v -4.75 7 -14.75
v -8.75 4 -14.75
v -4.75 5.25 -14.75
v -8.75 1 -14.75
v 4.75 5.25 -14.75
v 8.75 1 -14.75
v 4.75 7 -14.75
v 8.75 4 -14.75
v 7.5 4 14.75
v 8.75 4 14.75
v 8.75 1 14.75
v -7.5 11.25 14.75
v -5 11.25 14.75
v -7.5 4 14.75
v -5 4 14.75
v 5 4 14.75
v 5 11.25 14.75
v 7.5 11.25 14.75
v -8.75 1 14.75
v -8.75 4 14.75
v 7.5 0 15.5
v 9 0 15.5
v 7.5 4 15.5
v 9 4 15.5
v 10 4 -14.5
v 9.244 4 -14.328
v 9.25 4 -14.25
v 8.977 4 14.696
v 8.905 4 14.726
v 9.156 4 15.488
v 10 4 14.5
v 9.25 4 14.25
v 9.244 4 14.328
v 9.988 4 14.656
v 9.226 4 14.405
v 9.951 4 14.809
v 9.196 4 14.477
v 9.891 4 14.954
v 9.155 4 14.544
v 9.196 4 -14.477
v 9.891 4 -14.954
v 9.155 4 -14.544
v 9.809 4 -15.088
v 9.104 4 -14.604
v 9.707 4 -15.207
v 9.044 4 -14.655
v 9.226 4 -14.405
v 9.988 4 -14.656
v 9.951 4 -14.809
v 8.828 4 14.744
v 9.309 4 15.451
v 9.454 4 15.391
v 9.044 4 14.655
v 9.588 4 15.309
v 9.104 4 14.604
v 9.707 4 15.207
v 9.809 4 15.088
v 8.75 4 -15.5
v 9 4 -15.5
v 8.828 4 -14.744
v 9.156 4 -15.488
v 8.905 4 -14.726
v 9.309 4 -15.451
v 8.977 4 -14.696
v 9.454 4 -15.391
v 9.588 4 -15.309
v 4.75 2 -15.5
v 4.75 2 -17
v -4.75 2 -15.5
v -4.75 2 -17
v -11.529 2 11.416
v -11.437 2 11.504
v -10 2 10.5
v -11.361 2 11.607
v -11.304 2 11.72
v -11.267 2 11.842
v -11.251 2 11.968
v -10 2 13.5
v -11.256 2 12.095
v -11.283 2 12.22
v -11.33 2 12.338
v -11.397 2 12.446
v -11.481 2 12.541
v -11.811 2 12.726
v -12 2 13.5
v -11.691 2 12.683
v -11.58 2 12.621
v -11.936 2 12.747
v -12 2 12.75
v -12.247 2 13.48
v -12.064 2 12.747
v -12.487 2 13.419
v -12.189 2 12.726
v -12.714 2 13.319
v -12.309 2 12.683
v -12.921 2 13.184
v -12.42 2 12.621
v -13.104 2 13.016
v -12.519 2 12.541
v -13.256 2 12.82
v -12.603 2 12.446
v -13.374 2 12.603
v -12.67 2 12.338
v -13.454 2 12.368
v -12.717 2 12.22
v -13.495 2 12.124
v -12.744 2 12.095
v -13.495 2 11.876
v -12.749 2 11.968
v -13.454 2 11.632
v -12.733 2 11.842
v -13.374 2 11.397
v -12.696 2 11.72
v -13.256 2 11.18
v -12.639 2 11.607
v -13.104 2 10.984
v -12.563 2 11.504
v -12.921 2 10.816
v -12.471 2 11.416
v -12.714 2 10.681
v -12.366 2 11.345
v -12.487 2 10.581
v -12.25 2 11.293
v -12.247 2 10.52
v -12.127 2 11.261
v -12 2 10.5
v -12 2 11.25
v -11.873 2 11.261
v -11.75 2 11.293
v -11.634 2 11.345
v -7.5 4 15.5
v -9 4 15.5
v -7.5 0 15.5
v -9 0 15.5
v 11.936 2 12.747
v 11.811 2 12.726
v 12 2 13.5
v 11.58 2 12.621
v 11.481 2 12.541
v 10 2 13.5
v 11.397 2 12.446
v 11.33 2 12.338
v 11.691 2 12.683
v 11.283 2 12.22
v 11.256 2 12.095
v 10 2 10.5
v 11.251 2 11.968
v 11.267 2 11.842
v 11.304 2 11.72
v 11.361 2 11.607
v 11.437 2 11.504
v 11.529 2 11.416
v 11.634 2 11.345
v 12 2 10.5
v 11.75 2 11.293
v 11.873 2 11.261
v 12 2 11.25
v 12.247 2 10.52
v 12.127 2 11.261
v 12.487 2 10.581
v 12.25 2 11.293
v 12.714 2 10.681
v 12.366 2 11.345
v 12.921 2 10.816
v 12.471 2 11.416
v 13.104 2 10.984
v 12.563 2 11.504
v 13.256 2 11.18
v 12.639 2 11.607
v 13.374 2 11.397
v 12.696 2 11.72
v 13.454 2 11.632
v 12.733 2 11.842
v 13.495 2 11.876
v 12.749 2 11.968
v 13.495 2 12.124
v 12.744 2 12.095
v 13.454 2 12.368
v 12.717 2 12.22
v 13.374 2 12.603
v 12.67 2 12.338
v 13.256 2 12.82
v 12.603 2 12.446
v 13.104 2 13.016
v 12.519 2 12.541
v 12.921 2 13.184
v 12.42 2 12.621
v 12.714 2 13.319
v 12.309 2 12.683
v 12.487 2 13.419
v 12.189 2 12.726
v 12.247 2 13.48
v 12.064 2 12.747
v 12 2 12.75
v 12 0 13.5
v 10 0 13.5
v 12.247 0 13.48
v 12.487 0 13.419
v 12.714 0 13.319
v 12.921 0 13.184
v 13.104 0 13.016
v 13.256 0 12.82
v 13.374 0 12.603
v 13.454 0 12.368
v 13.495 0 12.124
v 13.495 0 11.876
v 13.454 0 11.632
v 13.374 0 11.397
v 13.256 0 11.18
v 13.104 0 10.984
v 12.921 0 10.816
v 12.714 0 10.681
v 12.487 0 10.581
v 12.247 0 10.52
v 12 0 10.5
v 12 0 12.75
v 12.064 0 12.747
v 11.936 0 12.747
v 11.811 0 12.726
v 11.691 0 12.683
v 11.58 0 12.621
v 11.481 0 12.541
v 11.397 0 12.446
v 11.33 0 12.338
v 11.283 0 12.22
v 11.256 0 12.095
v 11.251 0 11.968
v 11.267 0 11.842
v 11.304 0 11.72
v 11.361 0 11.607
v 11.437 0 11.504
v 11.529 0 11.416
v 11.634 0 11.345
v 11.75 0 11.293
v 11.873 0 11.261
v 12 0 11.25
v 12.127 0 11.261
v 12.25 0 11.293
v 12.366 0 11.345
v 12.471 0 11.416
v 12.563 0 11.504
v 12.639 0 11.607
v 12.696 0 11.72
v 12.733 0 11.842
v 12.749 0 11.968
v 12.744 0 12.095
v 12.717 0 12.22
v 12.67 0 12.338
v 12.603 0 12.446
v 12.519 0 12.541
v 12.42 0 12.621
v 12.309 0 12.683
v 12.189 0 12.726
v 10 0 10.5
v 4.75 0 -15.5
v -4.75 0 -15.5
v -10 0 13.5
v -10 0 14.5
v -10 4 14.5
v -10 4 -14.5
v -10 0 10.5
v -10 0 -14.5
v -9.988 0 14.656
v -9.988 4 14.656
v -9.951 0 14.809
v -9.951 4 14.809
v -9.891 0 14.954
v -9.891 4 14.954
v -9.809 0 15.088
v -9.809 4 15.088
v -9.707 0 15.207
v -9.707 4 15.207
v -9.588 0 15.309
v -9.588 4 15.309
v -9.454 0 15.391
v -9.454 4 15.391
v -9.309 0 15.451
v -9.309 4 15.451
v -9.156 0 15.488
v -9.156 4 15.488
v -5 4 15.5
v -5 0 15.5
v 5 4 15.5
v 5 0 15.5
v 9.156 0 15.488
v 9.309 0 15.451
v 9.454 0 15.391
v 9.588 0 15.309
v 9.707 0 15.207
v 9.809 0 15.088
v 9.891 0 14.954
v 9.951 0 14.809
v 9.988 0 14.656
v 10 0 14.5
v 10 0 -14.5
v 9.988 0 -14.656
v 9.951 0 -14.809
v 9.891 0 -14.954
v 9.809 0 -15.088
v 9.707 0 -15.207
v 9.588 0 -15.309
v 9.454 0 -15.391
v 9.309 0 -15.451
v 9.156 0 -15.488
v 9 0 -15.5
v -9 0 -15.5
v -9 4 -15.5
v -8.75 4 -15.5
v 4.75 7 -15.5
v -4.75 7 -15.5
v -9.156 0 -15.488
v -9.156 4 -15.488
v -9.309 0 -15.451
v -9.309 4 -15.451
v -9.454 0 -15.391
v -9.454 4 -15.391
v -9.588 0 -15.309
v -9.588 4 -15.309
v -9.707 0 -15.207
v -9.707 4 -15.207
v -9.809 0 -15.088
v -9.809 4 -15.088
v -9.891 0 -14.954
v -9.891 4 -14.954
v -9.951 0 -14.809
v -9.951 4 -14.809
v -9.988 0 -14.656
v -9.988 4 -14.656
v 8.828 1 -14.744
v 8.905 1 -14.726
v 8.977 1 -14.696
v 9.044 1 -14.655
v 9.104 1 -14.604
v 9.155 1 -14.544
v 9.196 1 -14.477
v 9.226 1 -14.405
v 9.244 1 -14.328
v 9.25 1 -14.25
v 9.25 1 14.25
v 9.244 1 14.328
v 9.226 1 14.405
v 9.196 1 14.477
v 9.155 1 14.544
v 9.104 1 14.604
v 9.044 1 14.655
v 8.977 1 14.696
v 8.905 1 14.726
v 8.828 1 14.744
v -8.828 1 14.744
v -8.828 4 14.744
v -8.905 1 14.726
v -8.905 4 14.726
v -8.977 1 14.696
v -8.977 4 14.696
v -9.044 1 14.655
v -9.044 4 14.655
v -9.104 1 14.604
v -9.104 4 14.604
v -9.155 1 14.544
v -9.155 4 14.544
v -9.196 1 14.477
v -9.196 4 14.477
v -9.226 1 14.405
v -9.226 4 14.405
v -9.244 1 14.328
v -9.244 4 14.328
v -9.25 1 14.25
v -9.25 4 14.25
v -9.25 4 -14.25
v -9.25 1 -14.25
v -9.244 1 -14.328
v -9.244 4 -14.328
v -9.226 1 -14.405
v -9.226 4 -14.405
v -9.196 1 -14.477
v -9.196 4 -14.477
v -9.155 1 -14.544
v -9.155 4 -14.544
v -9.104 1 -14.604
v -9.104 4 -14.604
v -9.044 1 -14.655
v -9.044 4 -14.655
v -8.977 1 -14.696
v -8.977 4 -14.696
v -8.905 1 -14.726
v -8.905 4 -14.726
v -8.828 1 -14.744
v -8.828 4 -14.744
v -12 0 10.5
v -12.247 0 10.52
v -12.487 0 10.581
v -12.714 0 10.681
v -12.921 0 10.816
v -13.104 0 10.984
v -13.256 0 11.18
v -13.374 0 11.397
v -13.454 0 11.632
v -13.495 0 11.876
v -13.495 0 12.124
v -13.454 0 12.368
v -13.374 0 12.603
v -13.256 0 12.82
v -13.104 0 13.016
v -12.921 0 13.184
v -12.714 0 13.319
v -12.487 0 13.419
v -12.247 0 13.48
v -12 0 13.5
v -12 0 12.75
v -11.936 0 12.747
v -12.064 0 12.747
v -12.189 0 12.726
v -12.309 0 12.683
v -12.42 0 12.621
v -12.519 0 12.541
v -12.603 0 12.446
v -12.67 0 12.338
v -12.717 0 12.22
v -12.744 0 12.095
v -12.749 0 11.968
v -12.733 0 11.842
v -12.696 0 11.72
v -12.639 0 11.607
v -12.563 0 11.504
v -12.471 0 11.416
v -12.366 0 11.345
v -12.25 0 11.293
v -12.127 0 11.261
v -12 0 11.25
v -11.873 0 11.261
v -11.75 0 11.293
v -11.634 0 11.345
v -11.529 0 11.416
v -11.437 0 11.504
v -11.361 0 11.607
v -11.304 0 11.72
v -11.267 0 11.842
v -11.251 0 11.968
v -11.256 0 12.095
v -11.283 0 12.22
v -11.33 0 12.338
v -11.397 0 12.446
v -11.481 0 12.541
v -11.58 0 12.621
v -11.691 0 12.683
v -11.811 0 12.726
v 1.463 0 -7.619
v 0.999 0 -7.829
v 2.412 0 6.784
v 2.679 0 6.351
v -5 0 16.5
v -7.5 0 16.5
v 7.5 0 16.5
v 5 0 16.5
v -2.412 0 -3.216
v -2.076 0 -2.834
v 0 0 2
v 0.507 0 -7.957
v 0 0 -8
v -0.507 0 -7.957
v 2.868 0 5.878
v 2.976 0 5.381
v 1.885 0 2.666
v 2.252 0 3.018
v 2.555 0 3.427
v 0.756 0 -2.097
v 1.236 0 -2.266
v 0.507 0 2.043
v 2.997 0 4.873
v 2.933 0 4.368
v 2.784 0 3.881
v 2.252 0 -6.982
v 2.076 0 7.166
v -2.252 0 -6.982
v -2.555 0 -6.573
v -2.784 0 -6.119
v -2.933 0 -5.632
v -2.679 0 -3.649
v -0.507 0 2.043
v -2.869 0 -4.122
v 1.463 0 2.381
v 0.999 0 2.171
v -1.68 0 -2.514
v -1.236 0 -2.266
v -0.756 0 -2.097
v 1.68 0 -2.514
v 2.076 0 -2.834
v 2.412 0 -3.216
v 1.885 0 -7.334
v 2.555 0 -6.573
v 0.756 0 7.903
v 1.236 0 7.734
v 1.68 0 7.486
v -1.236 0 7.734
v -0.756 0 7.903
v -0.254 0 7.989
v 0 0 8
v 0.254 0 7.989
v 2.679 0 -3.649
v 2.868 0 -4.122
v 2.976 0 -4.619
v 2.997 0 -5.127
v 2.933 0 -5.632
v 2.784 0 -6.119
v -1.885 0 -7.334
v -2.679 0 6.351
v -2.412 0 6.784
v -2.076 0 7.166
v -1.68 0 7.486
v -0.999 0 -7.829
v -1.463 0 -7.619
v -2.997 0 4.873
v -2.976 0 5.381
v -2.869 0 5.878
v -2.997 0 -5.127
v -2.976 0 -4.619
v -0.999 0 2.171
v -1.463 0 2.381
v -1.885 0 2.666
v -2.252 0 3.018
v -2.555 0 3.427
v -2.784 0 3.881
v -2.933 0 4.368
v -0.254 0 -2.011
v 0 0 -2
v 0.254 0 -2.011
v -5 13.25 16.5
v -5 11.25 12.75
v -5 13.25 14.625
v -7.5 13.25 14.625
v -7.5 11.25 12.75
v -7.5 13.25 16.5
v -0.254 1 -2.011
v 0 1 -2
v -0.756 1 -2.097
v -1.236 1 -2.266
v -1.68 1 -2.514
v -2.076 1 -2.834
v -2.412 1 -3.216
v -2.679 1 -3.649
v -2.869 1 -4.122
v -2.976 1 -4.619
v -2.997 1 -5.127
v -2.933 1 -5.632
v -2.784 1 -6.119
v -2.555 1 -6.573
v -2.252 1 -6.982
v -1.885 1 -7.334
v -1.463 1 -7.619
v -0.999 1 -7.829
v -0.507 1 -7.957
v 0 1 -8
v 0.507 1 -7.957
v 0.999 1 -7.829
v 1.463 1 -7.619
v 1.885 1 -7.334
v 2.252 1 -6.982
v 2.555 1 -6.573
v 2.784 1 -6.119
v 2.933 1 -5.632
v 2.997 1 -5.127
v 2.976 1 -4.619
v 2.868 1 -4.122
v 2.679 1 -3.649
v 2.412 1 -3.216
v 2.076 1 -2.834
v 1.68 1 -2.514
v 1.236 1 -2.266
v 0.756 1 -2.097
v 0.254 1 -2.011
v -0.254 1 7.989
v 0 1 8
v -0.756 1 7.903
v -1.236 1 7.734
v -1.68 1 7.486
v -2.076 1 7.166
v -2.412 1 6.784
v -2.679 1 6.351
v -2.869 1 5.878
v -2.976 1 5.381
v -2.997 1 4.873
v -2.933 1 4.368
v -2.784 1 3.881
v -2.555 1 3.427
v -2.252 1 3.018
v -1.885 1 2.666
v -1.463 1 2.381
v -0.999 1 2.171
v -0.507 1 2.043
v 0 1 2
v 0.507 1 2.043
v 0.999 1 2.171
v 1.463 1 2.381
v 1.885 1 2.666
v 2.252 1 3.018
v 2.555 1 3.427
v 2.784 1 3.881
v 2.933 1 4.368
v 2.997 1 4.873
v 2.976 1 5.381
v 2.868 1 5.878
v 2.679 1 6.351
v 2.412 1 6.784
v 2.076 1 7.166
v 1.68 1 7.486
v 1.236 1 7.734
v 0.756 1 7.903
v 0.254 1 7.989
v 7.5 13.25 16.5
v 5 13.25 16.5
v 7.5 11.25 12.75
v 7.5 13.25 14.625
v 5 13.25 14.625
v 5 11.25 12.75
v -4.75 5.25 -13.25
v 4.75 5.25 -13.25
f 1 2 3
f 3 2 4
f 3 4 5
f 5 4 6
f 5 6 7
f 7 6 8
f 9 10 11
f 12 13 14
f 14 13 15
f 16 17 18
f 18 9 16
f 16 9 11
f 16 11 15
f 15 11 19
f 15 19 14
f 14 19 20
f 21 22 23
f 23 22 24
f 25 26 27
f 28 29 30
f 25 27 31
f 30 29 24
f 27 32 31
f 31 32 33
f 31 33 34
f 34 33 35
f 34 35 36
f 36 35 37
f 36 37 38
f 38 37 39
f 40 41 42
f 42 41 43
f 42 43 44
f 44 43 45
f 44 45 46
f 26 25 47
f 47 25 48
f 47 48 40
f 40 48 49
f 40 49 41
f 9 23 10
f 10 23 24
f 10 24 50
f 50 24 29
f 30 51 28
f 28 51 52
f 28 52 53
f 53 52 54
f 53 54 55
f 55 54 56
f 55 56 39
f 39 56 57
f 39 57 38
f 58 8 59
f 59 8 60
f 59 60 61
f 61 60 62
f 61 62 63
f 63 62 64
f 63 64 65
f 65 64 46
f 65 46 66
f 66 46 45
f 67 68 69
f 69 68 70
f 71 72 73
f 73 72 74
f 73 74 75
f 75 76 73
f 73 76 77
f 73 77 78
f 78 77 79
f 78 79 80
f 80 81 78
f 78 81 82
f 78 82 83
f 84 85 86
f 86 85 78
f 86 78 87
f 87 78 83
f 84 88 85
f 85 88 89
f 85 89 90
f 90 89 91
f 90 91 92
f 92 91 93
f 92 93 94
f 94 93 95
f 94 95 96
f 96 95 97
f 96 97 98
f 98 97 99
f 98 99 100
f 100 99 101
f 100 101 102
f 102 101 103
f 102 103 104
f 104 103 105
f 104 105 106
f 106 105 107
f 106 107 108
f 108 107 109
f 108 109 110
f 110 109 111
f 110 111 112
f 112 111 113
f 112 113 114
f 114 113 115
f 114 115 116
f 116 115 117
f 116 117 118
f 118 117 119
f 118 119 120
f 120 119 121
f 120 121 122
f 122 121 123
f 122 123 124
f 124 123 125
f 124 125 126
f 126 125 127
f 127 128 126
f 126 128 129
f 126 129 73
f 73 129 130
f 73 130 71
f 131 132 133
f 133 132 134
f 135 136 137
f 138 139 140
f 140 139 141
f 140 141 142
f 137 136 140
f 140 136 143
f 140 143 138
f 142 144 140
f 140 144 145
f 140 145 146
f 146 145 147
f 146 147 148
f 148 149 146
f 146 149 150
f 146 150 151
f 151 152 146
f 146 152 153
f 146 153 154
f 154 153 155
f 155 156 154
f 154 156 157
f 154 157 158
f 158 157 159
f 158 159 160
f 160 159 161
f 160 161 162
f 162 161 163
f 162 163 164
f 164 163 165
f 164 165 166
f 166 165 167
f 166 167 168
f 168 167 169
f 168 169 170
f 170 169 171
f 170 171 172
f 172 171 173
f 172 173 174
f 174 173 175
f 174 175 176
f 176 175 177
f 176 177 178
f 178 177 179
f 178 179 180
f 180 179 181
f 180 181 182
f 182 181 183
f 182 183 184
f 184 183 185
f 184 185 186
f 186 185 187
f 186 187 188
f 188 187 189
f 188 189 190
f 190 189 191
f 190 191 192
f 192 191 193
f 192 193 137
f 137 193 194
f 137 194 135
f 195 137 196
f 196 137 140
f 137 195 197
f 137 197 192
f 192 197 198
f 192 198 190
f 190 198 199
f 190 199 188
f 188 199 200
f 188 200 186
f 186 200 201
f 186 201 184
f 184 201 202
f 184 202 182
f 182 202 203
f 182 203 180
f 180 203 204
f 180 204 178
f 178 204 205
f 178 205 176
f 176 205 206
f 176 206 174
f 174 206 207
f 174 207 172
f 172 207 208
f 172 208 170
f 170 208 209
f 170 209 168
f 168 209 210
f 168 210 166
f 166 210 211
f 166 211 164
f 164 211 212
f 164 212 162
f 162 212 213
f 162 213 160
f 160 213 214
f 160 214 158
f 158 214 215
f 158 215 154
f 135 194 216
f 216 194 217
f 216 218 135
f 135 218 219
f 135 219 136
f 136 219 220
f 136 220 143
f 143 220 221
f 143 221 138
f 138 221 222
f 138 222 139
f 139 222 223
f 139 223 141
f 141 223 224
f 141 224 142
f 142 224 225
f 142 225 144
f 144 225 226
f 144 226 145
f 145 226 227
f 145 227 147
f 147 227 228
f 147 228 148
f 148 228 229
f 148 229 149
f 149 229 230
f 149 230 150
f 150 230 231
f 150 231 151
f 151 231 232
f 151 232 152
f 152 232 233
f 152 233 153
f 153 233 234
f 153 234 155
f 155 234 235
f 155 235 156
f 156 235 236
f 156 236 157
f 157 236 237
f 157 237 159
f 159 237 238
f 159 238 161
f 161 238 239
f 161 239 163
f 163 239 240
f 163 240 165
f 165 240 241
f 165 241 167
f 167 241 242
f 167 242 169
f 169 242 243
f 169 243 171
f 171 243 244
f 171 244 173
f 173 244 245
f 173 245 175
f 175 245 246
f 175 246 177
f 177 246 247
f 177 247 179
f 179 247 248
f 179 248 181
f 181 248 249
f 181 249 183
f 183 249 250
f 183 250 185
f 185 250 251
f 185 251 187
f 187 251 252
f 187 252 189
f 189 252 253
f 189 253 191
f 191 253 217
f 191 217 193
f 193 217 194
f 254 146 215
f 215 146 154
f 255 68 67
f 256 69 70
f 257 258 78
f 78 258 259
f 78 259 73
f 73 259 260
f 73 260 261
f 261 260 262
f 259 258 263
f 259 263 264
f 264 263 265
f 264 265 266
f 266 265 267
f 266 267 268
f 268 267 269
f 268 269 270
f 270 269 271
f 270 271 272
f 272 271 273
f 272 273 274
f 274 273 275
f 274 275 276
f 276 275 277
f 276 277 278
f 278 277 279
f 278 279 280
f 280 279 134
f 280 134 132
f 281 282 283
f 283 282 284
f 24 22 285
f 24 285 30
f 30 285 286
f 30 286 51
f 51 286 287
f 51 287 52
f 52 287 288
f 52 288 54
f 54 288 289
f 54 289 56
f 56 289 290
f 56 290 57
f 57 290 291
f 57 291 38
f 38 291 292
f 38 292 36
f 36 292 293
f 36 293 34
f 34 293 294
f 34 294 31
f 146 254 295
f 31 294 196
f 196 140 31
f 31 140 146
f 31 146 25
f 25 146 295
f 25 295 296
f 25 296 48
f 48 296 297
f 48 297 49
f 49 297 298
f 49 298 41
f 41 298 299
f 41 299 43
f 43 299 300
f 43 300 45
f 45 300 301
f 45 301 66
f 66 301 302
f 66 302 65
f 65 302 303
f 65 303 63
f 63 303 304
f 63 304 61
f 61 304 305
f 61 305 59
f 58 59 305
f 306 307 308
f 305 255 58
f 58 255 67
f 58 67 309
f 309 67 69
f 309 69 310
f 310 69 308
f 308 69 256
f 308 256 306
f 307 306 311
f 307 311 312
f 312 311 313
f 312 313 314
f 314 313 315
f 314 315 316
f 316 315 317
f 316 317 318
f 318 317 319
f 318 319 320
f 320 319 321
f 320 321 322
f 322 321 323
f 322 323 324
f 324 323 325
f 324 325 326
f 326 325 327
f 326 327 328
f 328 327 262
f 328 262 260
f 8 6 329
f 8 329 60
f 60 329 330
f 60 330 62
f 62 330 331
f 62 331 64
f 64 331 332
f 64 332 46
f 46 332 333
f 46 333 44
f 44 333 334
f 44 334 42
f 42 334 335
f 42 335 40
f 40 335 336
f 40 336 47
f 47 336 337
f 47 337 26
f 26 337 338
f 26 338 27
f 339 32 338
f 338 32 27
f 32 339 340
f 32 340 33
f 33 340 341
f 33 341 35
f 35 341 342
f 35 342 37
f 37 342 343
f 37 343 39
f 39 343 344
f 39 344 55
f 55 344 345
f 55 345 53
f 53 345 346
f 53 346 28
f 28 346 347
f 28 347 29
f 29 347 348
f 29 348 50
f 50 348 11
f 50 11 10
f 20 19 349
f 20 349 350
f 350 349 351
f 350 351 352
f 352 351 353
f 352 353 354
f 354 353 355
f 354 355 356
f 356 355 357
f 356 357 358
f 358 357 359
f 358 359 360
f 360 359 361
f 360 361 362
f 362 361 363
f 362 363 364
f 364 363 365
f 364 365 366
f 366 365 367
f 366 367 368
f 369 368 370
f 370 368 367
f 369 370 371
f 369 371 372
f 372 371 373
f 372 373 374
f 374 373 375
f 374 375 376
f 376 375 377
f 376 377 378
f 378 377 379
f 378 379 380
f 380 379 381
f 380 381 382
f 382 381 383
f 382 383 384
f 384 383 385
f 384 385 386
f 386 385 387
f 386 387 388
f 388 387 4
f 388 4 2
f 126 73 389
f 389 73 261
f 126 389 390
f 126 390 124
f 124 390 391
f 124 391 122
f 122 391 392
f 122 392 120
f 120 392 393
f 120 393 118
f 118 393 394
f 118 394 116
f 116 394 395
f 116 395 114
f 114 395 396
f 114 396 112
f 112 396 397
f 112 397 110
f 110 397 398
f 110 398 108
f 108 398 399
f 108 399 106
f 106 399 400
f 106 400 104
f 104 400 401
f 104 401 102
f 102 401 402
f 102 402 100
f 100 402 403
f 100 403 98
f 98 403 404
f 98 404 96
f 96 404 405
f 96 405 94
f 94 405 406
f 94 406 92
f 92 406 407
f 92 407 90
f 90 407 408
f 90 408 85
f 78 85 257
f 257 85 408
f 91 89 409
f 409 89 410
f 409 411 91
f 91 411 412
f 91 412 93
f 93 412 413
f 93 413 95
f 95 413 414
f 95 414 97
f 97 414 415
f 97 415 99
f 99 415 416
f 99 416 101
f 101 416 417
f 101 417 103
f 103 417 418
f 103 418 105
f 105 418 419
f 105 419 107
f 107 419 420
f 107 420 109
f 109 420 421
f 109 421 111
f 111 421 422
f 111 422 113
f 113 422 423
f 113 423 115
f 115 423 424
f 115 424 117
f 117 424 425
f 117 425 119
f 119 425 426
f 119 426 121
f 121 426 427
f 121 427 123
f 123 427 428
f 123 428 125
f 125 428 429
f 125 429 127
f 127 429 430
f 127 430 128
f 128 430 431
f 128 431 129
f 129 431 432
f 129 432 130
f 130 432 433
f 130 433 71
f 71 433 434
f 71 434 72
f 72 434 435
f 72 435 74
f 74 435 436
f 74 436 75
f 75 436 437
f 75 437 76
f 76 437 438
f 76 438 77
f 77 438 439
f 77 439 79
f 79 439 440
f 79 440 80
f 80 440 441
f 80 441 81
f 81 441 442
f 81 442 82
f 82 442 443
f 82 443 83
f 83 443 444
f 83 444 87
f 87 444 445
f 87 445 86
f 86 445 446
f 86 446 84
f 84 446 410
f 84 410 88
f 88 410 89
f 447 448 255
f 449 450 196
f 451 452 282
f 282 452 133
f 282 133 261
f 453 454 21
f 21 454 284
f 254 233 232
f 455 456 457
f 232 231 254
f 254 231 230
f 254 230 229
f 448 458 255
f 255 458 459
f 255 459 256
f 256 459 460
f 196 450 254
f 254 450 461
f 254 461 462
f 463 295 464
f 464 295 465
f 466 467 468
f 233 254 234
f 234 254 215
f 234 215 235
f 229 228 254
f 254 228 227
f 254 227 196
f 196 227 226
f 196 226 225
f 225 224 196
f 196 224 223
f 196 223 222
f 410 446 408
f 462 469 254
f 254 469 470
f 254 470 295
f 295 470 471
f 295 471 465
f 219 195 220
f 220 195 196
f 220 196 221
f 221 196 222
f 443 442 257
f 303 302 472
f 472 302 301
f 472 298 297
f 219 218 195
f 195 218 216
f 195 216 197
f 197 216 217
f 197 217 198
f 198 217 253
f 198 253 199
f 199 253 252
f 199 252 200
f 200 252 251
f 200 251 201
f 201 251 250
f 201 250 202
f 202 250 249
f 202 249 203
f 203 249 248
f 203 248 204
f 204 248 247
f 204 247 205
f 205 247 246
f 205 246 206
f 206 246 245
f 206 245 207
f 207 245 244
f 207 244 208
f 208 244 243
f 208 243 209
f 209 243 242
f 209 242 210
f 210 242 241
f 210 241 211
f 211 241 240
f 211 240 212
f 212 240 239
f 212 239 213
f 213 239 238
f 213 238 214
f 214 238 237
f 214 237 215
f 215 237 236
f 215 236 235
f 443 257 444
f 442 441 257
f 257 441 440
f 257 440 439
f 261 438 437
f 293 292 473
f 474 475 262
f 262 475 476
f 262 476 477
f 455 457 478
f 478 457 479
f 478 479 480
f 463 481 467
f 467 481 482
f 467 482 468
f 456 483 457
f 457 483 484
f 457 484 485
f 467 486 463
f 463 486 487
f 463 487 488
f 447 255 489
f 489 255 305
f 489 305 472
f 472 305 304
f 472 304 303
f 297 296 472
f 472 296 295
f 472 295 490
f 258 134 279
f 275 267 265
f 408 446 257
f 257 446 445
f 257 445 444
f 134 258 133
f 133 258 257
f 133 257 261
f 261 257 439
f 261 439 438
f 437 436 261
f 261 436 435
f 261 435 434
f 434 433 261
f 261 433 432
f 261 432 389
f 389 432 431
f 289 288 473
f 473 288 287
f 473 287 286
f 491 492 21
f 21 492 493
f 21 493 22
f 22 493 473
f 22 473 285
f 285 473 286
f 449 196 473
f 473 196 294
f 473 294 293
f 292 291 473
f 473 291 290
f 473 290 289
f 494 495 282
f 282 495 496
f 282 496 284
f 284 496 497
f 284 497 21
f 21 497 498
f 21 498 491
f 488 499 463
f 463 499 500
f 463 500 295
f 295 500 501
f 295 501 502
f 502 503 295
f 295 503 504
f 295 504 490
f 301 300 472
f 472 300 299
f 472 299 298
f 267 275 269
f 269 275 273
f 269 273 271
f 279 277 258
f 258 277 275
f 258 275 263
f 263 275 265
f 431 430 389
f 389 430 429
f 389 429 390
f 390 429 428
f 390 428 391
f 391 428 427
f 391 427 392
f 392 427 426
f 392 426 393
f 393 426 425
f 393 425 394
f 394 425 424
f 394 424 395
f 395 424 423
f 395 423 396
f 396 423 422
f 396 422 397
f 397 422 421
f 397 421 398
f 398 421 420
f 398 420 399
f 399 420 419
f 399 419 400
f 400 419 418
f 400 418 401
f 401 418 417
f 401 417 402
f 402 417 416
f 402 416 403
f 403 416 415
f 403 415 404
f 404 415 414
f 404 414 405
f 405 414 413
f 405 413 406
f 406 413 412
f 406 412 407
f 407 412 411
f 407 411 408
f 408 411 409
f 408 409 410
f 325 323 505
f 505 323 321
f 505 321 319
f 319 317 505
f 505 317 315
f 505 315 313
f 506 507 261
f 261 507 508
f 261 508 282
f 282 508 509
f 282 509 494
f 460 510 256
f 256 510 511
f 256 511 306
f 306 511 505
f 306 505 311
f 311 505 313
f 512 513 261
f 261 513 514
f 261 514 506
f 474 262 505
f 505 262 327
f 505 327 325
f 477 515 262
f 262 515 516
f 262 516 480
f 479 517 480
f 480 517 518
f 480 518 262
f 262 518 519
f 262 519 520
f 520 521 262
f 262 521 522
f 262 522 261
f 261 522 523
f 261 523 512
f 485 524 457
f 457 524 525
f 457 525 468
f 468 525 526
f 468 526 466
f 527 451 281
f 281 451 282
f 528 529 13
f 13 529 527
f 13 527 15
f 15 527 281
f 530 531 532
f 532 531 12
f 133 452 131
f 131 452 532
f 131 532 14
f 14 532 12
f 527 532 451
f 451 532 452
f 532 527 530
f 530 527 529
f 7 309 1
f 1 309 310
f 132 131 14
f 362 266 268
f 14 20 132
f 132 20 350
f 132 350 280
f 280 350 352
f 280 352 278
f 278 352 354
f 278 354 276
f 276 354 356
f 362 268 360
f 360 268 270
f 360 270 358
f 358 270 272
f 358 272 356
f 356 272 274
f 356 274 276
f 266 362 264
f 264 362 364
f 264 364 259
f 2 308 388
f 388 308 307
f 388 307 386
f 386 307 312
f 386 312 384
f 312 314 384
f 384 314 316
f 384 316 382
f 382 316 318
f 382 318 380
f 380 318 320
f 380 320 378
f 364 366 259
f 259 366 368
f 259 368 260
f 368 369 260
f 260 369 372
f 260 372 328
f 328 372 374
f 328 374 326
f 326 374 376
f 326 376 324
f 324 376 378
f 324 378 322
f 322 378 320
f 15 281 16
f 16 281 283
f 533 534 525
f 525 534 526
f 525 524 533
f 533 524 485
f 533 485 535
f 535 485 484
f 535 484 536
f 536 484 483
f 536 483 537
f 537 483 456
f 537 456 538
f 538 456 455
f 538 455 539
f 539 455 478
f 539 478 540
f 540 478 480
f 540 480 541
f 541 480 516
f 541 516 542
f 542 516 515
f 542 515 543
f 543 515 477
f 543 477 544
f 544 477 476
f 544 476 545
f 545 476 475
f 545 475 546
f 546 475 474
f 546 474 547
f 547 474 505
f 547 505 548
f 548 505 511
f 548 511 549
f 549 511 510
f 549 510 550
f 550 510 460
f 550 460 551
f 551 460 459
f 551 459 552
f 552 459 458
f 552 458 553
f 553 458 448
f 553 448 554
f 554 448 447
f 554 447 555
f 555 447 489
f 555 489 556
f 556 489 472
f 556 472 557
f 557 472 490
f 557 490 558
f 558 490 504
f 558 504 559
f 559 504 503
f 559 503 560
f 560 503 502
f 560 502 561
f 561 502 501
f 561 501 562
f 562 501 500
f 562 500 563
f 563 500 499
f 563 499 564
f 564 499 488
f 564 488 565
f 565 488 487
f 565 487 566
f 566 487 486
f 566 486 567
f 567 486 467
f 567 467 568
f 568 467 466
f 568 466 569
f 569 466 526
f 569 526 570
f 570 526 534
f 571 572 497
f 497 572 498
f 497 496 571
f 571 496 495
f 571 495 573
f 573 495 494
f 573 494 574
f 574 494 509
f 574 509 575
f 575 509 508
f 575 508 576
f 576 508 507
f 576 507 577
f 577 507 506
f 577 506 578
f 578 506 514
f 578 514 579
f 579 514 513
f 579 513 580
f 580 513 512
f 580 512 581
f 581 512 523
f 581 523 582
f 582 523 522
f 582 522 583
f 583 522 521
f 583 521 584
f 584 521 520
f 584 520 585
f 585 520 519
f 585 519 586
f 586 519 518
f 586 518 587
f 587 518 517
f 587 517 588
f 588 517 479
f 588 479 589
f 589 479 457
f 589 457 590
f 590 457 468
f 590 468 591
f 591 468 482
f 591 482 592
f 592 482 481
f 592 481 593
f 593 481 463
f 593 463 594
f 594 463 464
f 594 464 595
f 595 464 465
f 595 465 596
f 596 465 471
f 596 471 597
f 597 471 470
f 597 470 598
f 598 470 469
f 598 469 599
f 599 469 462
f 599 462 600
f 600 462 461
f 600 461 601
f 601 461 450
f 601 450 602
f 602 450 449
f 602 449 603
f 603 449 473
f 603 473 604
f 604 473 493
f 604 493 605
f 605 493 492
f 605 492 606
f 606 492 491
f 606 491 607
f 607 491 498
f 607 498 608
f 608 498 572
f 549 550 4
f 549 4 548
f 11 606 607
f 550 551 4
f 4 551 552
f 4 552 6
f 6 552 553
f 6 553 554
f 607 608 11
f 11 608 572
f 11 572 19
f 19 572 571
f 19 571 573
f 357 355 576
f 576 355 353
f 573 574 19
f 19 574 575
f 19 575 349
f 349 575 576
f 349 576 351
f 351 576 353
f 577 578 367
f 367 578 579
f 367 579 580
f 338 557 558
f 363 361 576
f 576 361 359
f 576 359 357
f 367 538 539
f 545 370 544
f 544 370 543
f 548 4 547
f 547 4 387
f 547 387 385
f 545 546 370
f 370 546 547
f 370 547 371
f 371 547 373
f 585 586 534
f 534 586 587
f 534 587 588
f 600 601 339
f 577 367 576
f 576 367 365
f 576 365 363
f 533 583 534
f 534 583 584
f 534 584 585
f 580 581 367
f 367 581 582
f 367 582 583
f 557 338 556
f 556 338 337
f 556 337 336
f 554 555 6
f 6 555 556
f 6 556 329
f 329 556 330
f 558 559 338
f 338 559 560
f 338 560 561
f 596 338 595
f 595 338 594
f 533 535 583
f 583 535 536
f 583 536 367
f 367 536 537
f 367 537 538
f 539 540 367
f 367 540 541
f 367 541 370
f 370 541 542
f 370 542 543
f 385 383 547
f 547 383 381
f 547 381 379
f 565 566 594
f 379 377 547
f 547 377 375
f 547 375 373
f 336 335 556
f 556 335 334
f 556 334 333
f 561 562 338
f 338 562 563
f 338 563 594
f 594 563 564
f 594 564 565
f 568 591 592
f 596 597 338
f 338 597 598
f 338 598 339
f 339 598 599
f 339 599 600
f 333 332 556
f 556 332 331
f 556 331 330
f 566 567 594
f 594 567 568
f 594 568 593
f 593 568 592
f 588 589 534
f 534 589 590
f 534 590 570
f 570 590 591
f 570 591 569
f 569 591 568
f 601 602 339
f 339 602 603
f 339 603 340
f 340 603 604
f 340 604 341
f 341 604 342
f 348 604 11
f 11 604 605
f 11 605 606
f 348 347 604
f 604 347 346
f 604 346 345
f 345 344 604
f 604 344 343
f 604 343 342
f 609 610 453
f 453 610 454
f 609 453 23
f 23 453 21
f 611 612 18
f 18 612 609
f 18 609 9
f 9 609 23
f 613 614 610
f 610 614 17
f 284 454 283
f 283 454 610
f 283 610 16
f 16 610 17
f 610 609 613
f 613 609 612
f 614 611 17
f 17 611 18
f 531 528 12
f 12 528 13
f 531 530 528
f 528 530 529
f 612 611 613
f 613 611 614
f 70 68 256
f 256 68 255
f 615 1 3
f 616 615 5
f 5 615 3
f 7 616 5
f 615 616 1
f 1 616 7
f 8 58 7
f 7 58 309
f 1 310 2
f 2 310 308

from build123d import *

# Parameters (mm, degrees)
PCB_HOLDER_R             = 0.75
BOSS_EXTRUDE19_DEPTH     = 1
PCB_HOLDER_R_2           = 3
BOSS_EXTRUDE19_2_DEPTH   = 1
BOSS_EXTRUDE20_OUTLINE_R = 0.75
BOSS_EXTRUDE20_DEPTH     = 2
BOSS_EXTRUDE21_DEPTH     = 4
BOSS_EXTRUDE22_DEPTH     = 7
PCB_HOLDER_49_W          = 2.5
PCB_HOLDER_49_H          = 1
PCB_HOLDER_49_H_2        = 0.75
BOSS_EXTRUDE23_DEPTH     = 13.25
SKETCH10_W               = 2.5
SKETCH10_H               = 2
BOSS_EXTRUDE24_DEPTH     = 2
CUT_EXTRUDE9_DEPTH       = 20
CUT_EXTRUDE10_DEPTH      = 20
SKETCH9_W                = 9.5
SKETCH9_H                = 1.75
BOSS_EXTRUDE25_DEPTH     = 1.5
CUT_EXTRUDE11_DEPTH      = 10
CUT_EXTRUDE12_DEPTH      = 10
CUT_EXTRUDE13_DEPTH      = 10


# Read off the part's stored shape, not the designer's step: Boss-Extrude20
with BuildPart() as part:
    # PCB holder → Boss-Extrude19 (new body)
    with BuildSketch(Plane(origin=(0, 0, 0), x_dir=(1, 0, 0), z_dir=(0, 1, 0))):
        with BuildLine():
            Line((-10, -13.5), (-10, -10.5))
            Line((-10, -10.5), (-12, -10.5))
            ThreePointArc((-12, -10.5), (-13.5, -12), (-12, -13.5))
            Line((-12, -13.5), (-10, -13.5))
        make_face()
        with Locations(Location((-12, -12, 0), (0, 0, 270))):
            Circle(PCB_HOLDER_R, mode=Mode.SUBTRACT)
    extrude(amount=BOSS_EXTRUDE19_DEPTH)

    # Boss-Extrude20 outline → Boss-Extrude20 (add)
    with BuildSketch(Plane(origin=(0, 0, 0), x_dir=(1, 0, 0), z_dir=(0, 1, 0))):
        with BuildLine():
            Line((10, -14.5), (10, -13.5))
            Line((10, -13.5), (12, -13.5))
            ThreePointArc((12, -13.5), (13.5, -12), (12, -10.5))
            Line((12, -10.5), (10, -10.5))
            Line((10, -10.5), (10, 14.5))
            ThreePointArc((10, 14.5), (9.707106781, 15.207106781), (9, 15.5))
            Line((9, 15.5), (4.75, 15.5))
            Line((4.75, 15.5), (4.75, 17))
            Line((4.75, 17), (-4.75, 17))
            Line((-4.75, 17), (-4.75, 15.5))
            Line((-4.75, 15.5), (-9, 15.5))
            ThreePointArc((-9, 15.5), (-9.707106781, 15.207106781), (-10, 14.5))
            Line((-10, 14.5), (-10, -10.5))
            Line((-10, -10.5), (-12, -10.5))
            ThreePointArc((-12, -10.5), (-13.5, -12), (-12, -13.5))
            Line((-12, -13.5), (-10, -13.5))
            Line((-10, -13.5), (-10, -14.5))
            ThreePointArc((-10, -14.5), (-9.707106781, -15.207106781), (-9, -15.5))
            Line((-9, -15.5), (9, -15.5))
            ThreePointArc((9, -15.5), (9.707106781, -15.207106781), (10, -14.5))
        make_face()
        with Locations((12, -12)):
            Circle(BOSS_EXTRUDE20_OUTLINE_R, mode=Mode.SUBTRACT)
        with BuildLine():
            Line((-8.75, 14.75), (8.75, 14.75))
            ThreePointArc((8.75, 14.75), (9.103553391, 14.603553391), (9.25, 14.25))
            Line((9.25, 14.25), (9.25, -14.25))
            ThreePointArc((9.25, -14.25), (9.103553391, -14.603553391), (8.75, -14.75))
            Line((8.75, -14.75), (-8.75, -14.75))
            ThreePointArc((-8.75, -14.75), (-9.103553391, -14.603553391), (-9.25, -14.25))
            Line((-9.25, -14.25), (-9.25, 14.25))
            ThreePointArc((-9.25, 14.25), (-9.103553391, 14.603553391), (-8.75, 14.75))
        make_face(mode=Mode.SUBTRACT)
        with Locations((-12, -12)):
            Circle(BOSS_EXTRUDE20_OUTLINE_R, mode=Mode.SUBTRACT)
    extrude(amount=BOSS_EXTRUDE20_DEPTH)



with BuildPart() as body_2:
    # PCB holder → Boss-Extrude19 2 (new body)
    with BuildSketch(Plane(origin=(0, 0, 0), x_dir=(1, 0, 0), z_dir=(0, 1, 0))):
        with BuildLine():
            Line((8.75, 14.75), (-8.75, 14.75))
            ThreePointArc((-8.75, 14.75), (-9.103553391, 14.603553391), (-9.25, 14.25))
            Line((-9.25, 14.25), (-9.25, -14.25))
            ThreePointArc((-9.25, -14.25), (-9.103553391, -14.603553391), (-8.75, -14.75))
            Line((-8.75, -14.75), (7.5, -14.75))
            Line((7.5, -14.75), (7.5, -15.5))
            Line((7.5, -15.5), (9, -15.5))
            ThreePointArc((9, -15.5), (9.707106781, -15.207106781), (10, -14.5))
            Line((10, -14.5), (10, -13.5))
            Line((10, -13.5), (12, -13.5))
            ThreePointArc((12, -13.5), (13.5, -12), (12, -10.5))
            Line((12, -10.5), (10, -10.5))
            Line((10, -10.5), (10, 14.5))
            ThreePointArc((10, 14.5), (9.707106781, 15.207106781), (9, 15.5))
            Line((9, 15.5), (8.75, 15.5))
            Line((8.75, 15.5), (8.75, 14.75))
        make_face()
        with Locations(Location((0, -5, 0), (0, 0, 270))):
            Circle(PCB_HOLDER_R_2, mode=Mode.SUBTRACT)
        with Locations(Location((0, 5, 0), (0, 0, 270))):
            Circle(PCB_HOLDER_R_2, mode=Mode.SUBTRACT)
        with Locations(Location((12, -12, 0), (0, 0, 270))):
            Circle(PCB_HOLDER_R, mode=Mode.SUBTRACT)
    extrude(amount=BOSS_EXTRUDE19_2_DEPTH)

    # PCB holder<47> → Boss-Extrude21 (add)
    with BuildSketch(Plane(origin=(0, 0, 0), x_dir=(1, 0, 0), z_dir=(0, 1, 0))):
        with BuildLine():
            Line((9, 15.5), (-9, 15.5))
            ThreePointArc((-9, 15.5), (-9.707106781, 15.207106781), (-10, 14.5))
            Line((-10, 14.5), (-10, -14.5))
            ThreePointArc((-10, -14.5), (-9.707106781, -15.207106781), (-9, -15.5))
            Line((-9, -15.5), (9, -15.5))
            ThreePointArc((9, -15.5), (9.707106781, -15.207106781), (10, -14.5))
            Line((10, -14.5), (10, 14.5))
            ThreePointArc((10, 14.5), (9.707106781, 15.207106781), (9, 15.5))
        make_face()
        with BuildLine():
            Line((9.25, 14.25), (9.25, -14.25))
            ThreePointArc((9.25, -14.25), (9.103553391, -14.603553391), (8.75, -14.75))
            Line((8.75, -14.75), (-8.75, -14.75))
            ThreePointArc((-8.75, -14.75), (-9.103553391, -14.603553391), (-9.25, -14.25))
            Line((-9.25, -14.25), (-9.25, 14.25))
            ThreePointArc((-9.25, 14.25), (-9.103553391, 14.603553391), (-8.75, 14.75))
            Line((-8.75, 14.75), (8.75, 14.75))
            ThreePointArc((8.75, 14.75), (9.103553391, 14.603553391), (9.25, 14.25))
        make_face(mode=Mode.SUBTRACT)
    extrude(amount=BOSS_EXTRUDE21_DEPTH)

    # PCB holder<48> → Boss-Extrude22 (add)
    with BuildSketch(Plane(origin=(0, 0, 0), x_dir=(1, 0, 0), z_dir=(0, 1, 0))):
        Polygon((-4.75, 15.5), (-8.75, 15.5), (-8.75, 14.75), (8.75, 14.75), (8.75, 15.5), (4.75, 15.5), align=None)
    extrude(amount=BOSS_EXTRUDE22_DEPTH)


with BuildPart() as part_1:
    add(part.part)

    add(body_2.part)  # Boss-Extrude23 merges body 2
    # PCB holder<49> → Boss-Extrude23 (add)
    with BuildSketch(Plane(origin=(0, 0, 0), x_dir=(1, 0, 0), z_dir=(0, 1, 0))):
        with Locations((-6.25, -16)):
            Rectangle(PCB_HOLDER_49_W, PCB_HOLDER_49_H)
        with Locations((6.25, -16)):
            Rectangle(PCB_HOLDER_49_W, PCB_HOLDER_49_H)
        with Locations((-6.25, -15.125)):
            Rectangle(PCB_HOLDER_49_W, PCB_HOLDER_49_H_2)
        with Locations((6.25, -15.125)):
            Rectangle(PCB_HOLDER_49_W, PCB_HOLDER_49_H_2)
    extrude(amount=BOSS_EXTRUDE23_DEPTH)

    # Sketch10 → Boss-Extrude24 (add)
    with BuildSketch(Plane(origin=(0, 0, 14.75), x_dir=(-1, 0, 0), z_dir=(0, 0, -1))):
        with Locations((-6.25, 12.25)):
            Rectangle(SKETCH10_W, SKETCH10_H)
        with Locations((6.25, 12.25)):
            Rectangle(SKETCH10_W, SKETCH10_H)
    extrude(amount=BOSS_EXTRUDE24_DEPTH)

    # Sketch11 → Cut-Extrude9 (cut)
    with BuildSketch(Plane(origin=(7.5, 0, 0), x_dir=(0, 0, -1), z_dir=(1, 0, 0))):
        Polygon((-12.75, 11.25), (-14.625, 13.25), (-12.75, 13.25), align=None)
    extrude(amount=-CUT_EXTRUDE9_DEPTH, mode=Mode.SUBTRACT)

    # Sketch12 → Cut-Extrude10 (cut)
    with BuildSketch(Plane.ZY.offset(4.75)):
        Polygon((-15.5, 0), (-17, 2), (-17, 0), align=None)
    extrude(amount=-CUT_EXTRUDE10_DEPTH, mode=Mode.SUBTRACT)

    # Sketch9 → Boss-Extrude25 (add)
    with BuildSketch(Plane.XY.offset(-14.75)):
        with Locations((0, 6.125)):
            Rectangle(SKETCH9_W, SKETCH9_H)
    extrude(amount=BOSS_EXTRUDE25_DEPTH)

    # Sketch15 → Cut-Extrude11 (cut)
    with BuildSketch(Plane.ZY.offset(4.75)):
        Polygon((-14.75, 7), (-13.25, 5.25), (-13.25, 7), align=None)
    extrude(amount=-CUT_EXTRUDE11_DEPTH, mode=Mode.SUBTRACT)

    # Sketch16 → Cut-Extrude12 (cut)
    with BuildSketch(Plane.XY.offset(-14.75)):
        Polygon((8.75, 4), (4.75, 7), (8.75, 7), align=None)
    extrude(amount=-CUT_EXTRUDE12_DEPTH, mode=Mode.SUBTRACT)

    # Sketch17 → Cut-Extrude13 (cut)
    with BuildSketch(Plane.XY.offset(-14.75)):
        Polygon((-8.75, 4), (-4.75, 7), (-8.75, 7), align=None)
    extrude(amount=-CUT_EXTRUDE13_DEPTH, mode=Mode.SUBTRACT)


solid = part_1.part
